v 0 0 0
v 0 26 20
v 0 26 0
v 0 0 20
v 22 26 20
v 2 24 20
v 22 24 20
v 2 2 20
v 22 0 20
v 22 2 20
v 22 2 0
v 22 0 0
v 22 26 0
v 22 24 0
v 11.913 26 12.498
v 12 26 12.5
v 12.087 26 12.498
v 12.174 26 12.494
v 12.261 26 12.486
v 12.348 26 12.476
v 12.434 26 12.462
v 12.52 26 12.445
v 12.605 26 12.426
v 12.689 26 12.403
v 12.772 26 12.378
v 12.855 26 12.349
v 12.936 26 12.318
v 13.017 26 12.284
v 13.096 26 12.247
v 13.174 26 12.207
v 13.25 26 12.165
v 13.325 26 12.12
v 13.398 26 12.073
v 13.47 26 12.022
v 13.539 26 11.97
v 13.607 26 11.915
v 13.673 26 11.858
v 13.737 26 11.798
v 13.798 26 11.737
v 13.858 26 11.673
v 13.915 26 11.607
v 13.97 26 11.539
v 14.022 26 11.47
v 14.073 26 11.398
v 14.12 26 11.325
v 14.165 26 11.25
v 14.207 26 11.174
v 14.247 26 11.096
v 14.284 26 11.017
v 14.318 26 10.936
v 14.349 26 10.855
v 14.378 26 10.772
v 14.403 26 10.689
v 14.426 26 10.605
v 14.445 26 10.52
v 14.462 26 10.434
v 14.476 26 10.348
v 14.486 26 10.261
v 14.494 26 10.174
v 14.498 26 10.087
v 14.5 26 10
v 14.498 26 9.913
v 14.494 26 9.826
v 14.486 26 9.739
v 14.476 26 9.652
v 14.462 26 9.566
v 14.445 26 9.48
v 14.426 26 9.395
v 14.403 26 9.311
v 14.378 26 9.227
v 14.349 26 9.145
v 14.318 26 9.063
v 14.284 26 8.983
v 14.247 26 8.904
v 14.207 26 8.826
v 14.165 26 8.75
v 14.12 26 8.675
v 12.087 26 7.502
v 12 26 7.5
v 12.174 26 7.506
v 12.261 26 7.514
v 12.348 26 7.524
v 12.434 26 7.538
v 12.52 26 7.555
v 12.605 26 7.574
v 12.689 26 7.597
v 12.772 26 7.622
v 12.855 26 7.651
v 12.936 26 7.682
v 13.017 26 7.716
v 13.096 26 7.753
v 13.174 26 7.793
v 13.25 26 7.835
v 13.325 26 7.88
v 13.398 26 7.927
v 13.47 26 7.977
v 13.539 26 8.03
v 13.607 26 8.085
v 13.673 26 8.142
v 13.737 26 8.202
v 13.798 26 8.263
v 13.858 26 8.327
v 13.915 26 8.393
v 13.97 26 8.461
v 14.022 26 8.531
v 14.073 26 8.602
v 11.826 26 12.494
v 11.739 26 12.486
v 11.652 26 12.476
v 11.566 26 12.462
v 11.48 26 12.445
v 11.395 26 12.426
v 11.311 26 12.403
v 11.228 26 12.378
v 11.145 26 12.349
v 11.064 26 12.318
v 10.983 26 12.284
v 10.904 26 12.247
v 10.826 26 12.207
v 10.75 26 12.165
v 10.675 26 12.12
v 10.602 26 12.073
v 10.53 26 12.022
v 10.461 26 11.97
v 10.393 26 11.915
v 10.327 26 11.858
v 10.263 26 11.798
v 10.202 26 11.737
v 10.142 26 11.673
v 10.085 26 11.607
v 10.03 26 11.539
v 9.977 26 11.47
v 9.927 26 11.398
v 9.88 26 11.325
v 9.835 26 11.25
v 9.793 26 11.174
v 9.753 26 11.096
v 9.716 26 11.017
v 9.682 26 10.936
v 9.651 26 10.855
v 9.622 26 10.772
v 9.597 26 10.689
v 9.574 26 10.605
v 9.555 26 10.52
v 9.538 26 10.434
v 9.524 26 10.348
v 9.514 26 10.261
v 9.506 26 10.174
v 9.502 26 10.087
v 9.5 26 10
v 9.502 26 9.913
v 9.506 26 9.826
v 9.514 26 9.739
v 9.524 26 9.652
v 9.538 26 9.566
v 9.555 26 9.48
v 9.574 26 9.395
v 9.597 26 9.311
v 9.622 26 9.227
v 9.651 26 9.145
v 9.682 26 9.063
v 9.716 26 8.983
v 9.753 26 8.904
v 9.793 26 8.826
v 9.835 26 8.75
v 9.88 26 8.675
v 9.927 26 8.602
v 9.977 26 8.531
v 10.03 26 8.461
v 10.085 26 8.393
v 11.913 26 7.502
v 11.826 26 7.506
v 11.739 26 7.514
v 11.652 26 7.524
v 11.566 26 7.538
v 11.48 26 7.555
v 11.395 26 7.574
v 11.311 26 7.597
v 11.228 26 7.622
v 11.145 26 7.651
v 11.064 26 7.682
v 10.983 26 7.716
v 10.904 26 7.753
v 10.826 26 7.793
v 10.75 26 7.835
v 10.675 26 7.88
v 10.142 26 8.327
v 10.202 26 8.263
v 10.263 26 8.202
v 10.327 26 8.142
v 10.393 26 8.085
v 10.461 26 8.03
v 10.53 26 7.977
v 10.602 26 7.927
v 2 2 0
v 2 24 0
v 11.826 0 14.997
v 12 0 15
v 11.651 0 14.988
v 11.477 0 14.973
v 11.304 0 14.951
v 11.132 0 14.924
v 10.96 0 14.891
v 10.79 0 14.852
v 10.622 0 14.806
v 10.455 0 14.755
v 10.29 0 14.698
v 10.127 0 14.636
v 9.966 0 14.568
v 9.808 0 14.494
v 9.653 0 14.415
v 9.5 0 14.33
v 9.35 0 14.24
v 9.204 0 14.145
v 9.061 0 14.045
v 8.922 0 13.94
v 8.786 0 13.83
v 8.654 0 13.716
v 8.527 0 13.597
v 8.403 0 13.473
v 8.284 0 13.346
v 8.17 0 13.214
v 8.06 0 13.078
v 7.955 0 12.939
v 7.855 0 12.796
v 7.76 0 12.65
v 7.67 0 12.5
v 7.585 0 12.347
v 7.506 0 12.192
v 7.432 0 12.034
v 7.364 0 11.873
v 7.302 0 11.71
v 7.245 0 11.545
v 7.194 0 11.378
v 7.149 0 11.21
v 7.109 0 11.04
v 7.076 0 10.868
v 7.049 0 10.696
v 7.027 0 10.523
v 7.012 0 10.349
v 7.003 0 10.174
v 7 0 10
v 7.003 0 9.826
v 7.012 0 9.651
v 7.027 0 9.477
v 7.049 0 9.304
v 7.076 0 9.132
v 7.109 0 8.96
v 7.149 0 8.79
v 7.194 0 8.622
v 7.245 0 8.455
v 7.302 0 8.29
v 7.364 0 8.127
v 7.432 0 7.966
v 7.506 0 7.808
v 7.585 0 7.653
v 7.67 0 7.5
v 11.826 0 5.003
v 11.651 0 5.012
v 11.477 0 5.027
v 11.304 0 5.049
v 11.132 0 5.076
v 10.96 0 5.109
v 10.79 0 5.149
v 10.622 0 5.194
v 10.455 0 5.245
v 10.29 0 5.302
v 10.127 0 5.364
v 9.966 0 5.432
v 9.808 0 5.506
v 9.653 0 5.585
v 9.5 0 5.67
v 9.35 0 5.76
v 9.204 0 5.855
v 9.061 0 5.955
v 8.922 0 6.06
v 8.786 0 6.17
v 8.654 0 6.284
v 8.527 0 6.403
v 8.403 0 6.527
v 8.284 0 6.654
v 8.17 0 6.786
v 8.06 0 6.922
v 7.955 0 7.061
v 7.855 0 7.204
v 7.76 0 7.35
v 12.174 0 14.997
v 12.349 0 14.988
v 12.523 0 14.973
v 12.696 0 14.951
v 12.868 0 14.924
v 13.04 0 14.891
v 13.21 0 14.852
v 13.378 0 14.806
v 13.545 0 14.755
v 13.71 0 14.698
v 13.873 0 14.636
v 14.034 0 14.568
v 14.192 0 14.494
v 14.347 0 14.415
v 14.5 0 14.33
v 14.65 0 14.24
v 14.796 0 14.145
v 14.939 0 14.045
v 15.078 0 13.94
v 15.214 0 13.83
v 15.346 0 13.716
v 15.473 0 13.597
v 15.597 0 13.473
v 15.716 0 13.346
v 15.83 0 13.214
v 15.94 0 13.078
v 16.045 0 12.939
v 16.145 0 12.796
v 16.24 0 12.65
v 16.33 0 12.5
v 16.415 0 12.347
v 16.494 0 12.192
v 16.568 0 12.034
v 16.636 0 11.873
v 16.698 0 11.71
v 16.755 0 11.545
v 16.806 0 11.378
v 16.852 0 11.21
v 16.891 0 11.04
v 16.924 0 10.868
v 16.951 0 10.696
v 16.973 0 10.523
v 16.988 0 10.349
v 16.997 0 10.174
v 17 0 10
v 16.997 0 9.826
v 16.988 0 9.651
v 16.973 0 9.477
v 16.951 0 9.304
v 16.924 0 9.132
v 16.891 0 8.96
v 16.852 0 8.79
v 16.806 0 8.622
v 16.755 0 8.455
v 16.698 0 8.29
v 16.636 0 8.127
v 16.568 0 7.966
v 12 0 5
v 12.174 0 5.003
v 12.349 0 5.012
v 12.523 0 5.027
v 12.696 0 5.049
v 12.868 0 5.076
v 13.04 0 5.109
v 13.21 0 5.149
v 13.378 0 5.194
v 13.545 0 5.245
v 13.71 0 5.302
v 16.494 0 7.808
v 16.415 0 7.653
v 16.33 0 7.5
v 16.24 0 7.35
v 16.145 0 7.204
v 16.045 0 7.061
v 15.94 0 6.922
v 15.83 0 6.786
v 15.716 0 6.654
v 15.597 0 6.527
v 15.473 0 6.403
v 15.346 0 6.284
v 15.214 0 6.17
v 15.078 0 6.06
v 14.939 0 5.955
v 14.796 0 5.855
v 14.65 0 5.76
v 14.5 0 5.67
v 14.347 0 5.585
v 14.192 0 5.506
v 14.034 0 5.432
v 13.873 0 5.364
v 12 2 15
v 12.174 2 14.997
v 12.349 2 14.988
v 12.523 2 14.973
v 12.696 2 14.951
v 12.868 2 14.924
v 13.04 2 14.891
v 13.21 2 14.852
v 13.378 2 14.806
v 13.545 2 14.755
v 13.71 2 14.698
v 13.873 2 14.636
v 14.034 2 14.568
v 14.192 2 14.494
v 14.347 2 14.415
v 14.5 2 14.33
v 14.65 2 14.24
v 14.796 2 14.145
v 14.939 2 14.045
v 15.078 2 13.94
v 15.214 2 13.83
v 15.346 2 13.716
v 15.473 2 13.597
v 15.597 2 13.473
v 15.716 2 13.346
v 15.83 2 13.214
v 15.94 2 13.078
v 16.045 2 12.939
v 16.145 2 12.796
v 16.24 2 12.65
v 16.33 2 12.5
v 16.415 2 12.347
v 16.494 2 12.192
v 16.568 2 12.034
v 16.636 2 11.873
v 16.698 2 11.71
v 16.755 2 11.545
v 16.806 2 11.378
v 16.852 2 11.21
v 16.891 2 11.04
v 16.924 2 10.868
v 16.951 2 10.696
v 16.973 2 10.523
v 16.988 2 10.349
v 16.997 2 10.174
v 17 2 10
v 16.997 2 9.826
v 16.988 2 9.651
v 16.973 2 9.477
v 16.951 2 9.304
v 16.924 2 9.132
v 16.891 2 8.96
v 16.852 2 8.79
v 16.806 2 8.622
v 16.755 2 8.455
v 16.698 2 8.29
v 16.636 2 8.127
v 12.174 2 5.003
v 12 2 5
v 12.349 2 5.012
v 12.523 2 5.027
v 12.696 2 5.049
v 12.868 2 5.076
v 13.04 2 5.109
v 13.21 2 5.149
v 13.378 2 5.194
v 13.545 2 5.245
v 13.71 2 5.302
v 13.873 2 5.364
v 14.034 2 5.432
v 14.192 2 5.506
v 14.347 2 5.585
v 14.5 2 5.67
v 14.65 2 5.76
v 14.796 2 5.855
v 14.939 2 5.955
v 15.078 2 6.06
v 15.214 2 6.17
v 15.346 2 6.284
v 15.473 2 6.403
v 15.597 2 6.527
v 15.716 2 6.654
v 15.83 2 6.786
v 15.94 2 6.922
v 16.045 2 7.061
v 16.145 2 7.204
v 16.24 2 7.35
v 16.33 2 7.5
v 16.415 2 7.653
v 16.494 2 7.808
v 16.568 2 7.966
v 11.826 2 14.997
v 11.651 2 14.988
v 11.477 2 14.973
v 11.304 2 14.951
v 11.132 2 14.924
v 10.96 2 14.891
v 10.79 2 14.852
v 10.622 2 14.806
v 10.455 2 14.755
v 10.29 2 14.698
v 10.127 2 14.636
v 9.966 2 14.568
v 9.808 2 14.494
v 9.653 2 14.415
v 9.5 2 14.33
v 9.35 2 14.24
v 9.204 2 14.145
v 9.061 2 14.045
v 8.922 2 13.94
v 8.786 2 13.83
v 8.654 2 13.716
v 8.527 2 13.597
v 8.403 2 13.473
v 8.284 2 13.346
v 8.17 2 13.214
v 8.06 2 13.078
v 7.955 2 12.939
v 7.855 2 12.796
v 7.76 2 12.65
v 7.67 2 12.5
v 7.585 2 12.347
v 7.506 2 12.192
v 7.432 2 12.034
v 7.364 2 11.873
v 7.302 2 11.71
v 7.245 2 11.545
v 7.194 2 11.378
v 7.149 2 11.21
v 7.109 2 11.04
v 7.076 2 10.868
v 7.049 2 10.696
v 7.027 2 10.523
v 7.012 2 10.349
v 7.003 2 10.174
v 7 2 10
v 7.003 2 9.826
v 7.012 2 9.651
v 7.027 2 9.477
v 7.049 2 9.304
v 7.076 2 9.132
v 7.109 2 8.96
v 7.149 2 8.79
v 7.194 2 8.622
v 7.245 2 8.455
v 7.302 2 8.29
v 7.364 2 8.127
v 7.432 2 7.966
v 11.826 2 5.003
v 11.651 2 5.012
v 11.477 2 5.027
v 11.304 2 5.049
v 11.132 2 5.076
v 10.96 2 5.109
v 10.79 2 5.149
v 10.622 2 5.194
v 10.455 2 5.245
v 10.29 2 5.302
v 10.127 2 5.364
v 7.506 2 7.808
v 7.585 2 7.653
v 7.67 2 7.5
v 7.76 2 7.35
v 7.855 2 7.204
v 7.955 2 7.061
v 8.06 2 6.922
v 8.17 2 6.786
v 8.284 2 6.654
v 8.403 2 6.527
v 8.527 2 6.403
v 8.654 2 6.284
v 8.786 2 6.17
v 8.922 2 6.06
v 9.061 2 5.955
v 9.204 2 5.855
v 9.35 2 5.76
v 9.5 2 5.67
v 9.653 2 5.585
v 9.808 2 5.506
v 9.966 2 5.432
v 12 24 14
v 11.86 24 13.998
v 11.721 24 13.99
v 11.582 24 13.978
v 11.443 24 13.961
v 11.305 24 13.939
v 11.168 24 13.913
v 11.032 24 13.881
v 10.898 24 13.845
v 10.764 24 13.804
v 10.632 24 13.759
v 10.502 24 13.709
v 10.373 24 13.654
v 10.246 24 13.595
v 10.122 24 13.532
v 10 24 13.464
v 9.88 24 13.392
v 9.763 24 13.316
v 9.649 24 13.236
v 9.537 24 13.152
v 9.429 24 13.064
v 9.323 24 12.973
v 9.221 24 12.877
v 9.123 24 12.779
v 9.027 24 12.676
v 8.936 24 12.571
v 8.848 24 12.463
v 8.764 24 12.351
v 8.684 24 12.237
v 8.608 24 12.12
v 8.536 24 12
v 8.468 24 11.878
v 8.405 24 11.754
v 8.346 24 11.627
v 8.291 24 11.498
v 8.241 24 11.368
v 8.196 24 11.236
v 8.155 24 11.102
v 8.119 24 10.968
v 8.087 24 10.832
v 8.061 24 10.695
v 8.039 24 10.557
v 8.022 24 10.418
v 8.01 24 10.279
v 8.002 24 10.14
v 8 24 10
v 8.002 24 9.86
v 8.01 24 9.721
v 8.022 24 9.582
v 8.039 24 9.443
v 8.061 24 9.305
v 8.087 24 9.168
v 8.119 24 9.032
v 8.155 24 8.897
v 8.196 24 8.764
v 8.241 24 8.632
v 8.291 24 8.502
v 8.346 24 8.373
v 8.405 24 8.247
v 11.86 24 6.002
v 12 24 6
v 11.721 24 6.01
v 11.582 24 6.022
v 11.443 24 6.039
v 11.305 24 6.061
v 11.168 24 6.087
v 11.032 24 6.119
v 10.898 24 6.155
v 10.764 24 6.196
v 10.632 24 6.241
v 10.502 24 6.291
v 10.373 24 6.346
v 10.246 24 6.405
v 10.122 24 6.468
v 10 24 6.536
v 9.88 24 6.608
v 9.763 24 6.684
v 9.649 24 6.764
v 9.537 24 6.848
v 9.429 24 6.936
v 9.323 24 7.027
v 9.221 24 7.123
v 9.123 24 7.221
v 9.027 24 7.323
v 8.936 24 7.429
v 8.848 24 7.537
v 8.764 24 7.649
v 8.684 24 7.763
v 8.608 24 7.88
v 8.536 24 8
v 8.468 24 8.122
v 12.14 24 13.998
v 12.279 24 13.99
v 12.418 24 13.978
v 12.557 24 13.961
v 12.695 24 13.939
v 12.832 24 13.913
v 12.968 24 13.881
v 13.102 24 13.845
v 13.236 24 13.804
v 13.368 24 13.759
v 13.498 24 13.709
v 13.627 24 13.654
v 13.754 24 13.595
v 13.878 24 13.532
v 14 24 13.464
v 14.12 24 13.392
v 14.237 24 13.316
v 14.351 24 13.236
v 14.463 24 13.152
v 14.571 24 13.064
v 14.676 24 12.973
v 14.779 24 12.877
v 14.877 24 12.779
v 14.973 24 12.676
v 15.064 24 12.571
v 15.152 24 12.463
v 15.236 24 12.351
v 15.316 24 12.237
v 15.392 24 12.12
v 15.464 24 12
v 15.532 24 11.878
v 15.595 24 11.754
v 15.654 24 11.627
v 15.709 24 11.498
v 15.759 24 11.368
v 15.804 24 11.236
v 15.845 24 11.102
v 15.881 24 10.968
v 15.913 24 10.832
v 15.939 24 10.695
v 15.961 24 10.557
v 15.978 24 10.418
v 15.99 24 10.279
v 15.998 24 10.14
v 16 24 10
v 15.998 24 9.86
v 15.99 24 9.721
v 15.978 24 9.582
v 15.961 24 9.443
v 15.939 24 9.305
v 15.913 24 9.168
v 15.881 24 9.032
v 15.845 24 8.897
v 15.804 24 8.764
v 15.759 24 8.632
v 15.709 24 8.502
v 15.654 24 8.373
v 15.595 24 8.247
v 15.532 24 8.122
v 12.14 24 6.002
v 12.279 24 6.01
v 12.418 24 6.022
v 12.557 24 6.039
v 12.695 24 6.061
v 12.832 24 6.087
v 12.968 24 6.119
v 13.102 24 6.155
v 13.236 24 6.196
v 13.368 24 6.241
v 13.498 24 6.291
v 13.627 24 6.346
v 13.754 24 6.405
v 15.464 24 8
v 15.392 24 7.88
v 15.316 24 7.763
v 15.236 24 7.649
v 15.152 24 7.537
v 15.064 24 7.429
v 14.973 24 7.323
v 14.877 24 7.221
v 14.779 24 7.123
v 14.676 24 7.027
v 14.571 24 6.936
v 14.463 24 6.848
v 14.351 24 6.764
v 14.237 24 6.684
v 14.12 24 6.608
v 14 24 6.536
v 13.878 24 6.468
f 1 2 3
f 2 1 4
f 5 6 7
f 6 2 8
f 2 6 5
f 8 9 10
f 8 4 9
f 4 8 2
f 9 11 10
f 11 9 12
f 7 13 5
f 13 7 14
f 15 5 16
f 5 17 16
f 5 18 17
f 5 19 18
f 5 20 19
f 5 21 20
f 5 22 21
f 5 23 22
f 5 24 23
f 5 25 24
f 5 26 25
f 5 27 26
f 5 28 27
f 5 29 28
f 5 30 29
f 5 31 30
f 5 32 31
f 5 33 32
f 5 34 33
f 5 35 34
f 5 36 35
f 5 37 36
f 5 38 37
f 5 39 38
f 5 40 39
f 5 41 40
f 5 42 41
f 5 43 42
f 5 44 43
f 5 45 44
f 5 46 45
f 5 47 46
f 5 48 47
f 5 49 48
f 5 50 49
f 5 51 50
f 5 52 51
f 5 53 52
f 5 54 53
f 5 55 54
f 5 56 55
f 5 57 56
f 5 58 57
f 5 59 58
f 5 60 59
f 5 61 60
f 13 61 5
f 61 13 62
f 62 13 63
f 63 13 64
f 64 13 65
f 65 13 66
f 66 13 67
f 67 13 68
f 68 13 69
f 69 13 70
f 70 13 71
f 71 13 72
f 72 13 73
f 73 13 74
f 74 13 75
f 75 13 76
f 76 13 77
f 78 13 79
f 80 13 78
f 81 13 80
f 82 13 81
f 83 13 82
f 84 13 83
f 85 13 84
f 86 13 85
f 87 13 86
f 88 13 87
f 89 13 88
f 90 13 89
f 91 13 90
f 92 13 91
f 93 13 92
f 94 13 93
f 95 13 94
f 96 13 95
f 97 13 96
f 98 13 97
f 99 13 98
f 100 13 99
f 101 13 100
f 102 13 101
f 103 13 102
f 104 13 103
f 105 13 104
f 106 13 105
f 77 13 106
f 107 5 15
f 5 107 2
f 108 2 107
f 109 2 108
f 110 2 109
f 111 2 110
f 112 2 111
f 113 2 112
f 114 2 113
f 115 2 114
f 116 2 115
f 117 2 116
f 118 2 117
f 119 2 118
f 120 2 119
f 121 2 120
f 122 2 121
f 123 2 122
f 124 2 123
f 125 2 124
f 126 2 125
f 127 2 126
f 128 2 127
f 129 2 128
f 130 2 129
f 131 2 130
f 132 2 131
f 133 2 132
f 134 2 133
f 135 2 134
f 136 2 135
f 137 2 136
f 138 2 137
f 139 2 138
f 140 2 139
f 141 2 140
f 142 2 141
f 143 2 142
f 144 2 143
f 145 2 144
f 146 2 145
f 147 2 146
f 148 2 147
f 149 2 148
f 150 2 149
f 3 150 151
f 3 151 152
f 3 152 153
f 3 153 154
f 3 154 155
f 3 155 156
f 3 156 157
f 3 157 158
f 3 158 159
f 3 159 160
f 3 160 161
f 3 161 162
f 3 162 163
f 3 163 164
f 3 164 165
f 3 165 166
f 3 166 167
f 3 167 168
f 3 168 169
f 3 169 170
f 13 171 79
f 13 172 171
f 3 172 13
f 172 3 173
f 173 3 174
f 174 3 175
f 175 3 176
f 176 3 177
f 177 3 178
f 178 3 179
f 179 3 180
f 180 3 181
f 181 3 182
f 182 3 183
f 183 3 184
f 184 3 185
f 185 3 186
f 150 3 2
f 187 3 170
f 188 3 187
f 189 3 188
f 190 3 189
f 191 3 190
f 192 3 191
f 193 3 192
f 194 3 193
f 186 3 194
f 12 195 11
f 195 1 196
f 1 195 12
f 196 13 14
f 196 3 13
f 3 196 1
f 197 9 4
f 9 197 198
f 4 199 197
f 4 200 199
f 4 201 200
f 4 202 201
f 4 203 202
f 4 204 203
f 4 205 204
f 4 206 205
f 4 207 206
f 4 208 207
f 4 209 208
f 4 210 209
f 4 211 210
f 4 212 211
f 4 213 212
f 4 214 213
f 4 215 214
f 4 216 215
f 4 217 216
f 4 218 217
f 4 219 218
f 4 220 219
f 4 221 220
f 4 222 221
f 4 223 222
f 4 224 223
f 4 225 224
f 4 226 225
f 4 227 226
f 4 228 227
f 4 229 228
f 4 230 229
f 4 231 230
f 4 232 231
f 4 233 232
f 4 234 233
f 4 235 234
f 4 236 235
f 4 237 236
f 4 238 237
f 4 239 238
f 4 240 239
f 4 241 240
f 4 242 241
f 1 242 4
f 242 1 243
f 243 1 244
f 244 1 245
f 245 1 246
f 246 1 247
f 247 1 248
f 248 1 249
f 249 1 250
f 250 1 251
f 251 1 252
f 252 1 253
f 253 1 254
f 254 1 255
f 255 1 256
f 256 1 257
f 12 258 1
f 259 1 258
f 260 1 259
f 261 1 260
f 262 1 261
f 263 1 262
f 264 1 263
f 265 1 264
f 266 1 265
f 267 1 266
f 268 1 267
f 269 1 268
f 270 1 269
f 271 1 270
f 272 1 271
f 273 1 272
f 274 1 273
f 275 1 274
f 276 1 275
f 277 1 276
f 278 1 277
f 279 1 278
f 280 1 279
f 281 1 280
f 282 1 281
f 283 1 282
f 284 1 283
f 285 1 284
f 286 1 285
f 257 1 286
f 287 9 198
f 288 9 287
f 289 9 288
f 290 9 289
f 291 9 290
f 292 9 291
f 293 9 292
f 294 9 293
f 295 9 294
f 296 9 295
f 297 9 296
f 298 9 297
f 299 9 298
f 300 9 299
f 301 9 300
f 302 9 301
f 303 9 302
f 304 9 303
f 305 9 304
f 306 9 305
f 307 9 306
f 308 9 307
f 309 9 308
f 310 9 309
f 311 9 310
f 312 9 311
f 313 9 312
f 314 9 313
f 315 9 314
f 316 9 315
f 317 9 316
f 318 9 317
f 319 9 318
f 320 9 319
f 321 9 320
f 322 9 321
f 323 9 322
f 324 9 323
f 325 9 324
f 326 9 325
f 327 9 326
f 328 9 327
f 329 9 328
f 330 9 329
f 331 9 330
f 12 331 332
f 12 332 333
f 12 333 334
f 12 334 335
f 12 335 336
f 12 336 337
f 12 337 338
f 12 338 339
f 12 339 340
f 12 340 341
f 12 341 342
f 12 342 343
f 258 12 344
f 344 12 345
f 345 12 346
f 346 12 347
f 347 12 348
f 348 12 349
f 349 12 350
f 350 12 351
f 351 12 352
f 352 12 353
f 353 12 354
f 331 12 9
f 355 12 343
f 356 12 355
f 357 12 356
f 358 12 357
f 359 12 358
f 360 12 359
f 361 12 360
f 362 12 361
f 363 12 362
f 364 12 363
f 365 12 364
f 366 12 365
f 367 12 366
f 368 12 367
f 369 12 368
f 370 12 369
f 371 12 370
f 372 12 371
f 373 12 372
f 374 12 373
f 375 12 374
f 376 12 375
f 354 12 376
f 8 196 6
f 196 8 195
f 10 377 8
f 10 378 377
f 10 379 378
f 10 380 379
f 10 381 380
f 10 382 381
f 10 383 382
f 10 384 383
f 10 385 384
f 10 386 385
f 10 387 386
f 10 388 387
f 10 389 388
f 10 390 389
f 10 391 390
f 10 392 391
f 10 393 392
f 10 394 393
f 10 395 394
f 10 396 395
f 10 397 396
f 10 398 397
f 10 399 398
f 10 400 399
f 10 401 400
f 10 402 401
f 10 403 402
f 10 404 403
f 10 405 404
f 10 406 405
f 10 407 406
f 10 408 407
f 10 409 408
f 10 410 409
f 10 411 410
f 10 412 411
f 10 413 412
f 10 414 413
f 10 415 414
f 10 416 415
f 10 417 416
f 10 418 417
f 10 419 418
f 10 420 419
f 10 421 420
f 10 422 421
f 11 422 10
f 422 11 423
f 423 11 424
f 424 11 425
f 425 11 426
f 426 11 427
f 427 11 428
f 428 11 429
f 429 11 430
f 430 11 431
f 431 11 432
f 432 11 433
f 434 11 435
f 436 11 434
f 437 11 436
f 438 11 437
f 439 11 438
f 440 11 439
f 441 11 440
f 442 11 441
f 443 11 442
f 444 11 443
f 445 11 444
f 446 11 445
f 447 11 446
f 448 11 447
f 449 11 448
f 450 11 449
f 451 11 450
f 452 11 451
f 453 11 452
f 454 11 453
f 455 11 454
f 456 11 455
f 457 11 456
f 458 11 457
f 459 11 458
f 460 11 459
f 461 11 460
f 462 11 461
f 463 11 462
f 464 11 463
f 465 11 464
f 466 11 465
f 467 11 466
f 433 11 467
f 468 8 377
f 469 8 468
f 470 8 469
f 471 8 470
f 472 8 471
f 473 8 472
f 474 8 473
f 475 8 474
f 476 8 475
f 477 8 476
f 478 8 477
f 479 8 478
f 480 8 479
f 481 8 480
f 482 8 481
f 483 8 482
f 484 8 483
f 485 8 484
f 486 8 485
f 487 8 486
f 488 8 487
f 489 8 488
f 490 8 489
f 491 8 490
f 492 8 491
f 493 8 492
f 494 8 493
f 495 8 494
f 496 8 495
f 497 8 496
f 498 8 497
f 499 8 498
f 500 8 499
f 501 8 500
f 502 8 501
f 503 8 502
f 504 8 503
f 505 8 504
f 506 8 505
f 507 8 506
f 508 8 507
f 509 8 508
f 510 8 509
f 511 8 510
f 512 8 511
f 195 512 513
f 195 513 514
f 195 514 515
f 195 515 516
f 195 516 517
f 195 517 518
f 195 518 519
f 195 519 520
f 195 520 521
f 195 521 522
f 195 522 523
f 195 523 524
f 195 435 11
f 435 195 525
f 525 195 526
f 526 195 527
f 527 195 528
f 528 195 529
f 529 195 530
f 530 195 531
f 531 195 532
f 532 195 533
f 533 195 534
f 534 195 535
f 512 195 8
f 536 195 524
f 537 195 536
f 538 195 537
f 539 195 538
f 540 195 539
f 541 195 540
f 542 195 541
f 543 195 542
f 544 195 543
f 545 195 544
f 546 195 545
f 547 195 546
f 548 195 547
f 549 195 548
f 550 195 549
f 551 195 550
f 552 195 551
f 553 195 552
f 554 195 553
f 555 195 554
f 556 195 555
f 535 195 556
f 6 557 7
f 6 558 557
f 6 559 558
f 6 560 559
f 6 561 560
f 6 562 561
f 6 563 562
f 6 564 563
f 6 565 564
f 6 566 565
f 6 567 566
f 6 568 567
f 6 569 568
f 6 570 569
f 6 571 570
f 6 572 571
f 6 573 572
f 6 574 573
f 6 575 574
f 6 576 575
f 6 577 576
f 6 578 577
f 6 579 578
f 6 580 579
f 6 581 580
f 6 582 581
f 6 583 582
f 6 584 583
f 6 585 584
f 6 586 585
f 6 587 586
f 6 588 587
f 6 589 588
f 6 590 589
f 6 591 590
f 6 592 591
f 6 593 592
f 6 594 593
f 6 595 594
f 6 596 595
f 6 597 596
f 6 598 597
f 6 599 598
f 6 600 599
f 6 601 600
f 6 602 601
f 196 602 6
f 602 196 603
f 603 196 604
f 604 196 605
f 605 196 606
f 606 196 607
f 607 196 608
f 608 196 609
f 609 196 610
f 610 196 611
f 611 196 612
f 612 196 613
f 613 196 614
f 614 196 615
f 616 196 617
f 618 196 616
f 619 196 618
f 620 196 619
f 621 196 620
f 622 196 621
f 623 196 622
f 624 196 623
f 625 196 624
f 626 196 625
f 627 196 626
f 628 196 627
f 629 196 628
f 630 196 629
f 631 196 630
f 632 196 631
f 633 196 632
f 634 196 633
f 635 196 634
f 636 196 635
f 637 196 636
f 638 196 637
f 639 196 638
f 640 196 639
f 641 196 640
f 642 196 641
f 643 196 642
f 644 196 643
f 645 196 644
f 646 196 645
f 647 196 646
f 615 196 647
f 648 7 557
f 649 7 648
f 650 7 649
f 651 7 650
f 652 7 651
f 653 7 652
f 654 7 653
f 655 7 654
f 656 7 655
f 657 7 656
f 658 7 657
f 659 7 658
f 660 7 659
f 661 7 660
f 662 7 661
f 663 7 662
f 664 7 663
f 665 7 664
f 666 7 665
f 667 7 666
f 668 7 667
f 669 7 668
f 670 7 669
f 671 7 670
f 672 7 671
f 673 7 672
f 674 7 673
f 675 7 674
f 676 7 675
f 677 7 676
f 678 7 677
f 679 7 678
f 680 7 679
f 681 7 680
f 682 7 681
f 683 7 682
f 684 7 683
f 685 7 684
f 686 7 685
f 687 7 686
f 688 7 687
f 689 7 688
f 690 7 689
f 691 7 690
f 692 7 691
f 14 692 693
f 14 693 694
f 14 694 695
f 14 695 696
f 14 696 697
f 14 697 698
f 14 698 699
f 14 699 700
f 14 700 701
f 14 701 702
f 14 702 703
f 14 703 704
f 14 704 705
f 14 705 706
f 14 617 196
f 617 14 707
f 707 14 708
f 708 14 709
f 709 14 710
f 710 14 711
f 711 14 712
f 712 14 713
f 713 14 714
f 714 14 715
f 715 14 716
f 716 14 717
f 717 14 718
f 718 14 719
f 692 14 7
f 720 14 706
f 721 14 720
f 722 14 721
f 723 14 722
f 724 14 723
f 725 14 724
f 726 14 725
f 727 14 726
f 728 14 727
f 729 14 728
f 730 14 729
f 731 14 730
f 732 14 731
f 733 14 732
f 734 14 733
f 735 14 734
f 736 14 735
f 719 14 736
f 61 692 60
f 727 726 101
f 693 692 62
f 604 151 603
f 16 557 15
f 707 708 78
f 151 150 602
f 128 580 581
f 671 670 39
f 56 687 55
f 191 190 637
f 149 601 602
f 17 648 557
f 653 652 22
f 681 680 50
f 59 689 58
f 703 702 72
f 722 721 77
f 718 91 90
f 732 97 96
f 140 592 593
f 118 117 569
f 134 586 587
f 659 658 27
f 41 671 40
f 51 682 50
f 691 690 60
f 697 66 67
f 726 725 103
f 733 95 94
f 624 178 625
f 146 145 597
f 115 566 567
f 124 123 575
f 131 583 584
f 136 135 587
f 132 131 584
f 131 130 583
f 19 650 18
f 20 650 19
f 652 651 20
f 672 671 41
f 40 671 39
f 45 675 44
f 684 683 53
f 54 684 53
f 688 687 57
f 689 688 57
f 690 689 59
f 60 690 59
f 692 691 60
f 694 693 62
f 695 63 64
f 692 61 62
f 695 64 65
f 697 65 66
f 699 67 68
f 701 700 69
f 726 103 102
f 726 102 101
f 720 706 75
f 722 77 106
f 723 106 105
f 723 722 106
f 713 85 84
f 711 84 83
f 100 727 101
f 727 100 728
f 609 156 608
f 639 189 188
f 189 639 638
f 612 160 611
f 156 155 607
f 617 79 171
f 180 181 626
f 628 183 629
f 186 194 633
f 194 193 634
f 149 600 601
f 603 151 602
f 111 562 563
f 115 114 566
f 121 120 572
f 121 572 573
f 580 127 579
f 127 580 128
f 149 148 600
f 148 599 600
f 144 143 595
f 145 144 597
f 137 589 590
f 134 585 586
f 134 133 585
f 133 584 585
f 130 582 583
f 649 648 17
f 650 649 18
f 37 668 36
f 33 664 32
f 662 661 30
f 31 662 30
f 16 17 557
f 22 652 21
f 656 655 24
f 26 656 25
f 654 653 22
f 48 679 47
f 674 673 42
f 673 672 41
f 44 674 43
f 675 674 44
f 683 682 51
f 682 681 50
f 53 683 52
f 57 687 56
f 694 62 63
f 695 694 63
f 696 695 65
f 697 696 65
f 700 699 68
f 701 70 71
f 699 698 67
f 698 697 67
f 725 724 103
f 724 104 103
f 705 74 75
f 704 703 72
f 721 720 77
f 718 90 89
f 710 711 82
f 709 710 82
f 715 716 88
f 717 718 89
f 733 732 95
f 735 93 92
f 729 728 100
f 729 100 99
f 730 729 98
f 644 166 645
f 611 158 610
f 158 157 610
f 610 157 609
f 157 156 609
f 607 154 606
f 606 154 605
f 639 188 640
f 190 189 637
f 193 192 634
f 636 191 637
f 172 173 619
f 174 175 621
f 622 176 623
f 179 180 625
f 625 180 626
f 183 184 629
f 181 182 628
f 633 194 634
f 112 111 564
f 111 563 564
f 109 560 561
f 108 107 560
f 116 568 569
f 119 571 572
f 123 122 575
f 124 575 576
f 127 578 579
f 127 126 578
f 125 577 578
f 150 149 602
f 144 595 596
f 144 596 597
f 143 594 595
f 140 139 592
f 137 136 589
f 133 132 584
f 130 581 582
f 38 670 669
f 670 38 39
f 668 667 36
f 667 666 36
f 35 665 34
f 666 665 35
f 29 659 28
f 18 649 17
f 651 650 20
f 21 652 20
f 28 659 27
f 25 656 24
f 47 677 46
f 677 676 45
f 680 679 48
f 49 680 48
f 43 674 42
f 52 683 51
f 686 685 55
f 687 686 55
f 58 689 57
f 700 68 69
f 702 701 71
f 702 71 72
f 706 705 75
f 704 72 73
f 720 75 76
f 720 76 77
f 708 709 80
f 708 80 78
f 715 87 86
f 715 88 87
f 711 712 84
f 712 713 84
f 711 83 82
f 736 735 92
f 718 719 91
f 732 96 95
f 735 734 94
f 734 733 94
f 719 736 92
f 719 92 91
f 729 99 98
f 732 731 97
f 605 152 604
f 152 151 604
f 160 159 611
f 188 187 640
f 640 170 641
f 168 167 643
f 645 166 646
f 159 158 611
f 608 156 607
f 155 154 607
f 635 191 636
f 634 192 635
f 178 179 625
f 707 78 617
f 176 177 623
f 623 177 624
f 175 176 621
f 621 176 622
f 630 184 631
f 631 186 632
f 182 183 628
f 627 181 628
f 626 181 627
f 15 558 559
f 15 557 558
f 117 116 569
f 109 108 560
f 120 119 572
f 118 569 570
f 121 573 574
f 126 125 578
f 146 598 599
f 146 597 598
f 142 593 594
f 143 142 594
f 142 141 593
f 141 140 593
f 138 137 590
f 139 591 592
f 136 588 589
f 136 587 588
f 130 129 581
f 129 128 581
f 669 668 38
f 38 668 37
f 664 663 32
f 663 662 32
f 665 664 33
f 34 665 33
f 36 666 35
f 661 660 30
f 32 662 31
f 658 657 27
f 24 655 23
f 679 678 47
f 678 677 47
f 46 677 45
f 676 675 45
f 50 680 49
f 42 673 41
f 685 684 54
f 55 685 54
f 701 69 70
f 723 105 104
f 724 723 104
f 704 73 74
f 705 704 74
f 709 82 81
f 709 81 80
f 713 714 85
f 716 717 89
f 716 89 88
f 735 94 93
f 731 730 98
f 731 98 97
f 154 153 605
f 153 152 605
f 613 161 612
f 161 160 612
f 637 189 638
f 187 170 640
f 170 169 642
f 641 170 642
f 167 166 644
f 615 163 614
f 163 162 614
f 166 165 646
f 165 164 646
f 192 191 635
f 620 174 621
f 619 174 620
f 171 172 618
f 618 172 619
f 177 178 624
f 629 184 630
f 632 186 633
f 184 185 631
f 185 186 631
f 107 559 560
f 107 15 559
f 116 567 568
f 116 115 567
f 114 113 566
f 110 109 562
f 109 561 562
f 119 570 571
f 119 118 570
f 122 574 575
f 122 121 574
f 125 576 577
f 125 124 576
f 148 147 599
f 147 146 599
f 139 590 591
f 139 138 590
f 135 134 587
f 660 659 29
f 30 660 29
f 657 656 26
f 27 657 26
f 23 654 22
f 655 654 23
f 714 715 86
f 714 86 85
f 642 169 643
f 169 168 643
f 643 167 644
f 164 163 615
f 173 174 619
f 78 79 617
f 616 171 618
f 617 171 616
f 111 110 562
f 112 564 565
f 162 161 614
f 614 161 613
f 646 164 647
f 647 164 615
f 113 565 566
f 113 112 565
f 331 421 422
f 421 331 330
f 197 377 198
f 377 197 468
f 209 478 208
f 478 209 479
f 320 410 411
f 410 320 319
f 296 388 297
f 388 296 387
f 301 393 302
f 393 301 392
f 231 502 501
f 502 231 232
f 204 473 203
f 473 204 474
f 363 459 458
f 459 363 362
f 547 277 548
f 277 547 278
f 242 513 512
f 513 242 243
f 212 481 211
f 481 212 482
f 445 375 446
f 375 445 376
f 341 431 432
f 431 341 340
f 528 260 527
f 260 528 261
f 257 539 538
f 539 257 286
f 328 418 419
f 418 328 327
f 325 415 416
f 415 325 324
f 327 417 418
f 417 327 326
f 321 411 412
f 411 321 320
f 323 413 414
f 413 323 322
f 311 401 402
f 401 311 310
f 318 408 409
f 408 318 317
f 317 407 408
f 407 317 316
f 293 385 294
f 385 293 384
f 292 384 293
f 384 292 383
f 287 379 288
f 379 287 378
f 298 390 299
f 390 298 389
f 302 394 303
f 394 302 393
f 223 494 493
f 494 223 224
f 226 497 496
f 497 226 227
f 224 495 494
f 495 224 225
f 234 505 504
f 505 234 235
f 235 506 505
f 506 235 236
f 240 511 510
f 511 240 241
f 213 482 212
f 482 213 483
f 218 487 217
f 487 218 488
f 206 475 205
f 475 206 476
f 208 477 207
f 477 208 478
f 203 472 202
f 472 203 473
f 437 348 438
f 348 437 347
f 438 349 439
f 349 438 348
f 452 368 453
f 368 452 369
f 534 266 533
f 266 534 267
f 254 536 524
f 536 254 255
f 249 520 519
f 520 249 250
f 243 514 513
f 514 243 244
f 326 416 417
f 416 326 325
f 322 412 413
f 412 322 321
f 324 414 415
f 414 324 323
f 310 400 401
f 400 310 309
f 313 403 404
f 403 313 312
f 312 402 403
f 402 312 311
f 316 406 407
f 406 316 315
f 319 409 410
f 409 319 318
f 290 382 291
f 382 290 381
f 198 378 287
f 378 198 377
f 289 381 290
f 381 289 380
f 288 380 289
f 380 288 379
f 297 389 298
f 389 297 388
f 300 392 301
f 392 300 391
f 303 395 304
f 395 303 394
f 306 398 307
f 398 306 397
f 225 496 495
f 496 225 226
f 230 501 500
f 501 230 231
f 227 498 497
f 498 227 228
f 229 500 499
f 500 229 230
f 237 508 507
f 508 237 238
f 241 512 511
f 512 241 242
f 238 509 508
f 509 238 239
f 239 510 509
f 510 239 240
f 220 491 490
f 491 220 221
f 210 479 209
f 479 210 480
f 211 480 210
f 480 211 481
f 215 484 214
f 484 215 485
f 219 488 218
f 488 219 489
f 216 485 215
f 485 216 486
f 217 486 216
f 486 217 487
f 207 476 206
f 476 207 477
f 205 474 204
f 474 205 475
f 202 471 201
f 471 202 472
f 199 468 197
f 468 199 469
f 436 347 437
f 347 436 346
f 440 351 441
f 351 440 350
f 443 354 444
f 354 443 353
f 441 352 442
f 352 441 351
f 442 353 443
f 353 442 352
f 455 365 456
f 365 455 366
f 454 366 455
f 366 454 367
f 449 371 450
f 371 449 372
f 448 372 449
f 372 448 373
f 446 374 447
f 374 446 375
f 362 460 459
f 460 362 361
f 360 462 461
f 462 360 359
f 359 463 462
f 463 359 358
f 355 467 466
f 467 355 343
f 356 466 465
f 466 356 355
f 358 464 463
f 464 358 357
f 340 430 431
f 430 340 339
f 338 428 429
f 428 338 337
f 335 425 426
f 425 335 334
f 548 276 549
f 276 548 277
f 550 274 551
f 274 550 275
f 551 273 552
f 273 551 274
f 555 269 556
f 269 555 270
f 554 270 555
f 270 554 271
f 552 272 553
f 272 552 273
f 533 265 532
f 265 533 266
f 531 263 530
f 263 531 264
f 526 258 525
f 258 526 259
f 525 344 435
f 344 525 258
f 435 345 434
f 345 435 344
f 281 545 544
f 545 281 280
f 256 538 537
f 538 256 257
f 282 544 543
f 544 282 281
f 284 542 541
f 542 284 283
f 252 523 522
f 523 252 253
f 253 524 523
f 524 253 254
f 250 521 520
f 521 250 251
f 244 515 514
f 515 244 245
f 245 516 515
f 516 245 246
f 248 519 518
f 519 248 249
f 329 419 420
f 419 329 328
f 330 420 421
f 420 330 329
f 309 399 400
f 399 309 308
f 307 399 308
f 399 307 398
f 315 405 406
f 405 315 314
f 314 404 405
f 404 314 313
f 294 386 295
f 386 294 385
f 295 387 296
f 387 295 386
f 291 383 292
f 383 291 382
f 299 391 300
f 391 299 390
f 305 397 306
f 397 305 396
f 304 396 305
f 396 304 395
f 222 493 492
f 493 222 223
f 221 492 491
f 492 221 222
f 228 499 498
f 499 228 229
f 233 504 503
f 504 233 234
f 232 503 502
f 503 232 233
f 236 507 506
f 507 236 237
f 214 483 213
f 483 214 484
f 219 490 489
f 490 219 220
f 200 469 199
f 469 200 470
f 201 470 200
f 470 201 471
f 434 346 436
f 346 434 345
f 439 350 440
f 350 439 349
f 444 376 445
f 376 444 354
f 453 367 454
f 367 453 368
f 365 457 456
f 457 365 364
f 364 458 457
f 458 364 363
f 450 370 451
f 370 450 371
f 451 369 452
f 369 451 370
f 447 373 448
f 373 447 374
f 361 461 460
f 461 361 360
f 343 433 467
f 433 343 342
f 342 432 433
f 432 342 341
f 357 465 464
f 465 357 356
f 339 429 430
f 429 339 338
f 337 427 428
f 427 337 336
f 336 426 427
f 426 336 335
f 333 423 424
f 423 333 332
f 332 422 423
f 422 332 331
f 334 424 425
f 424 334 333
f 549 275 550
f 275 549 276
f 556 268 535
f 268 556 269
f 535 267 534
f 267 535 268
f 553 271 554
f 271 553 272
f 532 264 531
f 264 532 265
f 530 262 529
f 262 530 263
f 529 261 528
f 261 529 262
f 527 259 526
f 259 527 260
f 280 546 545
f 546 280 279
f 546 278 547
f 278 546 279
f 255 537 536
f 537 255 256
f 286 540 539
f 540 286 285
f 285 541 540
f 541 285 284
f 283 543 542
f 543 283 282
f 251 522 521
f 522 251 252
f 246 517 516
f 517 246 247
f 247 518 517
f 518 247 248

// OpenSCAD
laptop_thickness = 22;

height = 20;
length = 20;

thickness = 2;

screw_top = 9;
screw_bottom = 6;

screw_driver_diameter = 10;

with_bottom = false;
bottom = 0;
if (with_bottom) {
    bottom = thickness;
}


$fn = 180;

difference() {
    cube([length + thickness, laptop_thickness + 2 * thickness, height + bottom]);
    translate([thickness, thickness, bottom]) cube([length, laptop_thickness, height]);
    translate([thickness + length / 2, laptop_thickness + 2 * thickness, bottom + height / 2]) rotate([90, 0, 0]) cylinder(d1=5, d2=8, thickness);
    translate([thickness + length / 2, thickness, bottom + height / 2]) rotate([90, 0, 0]) cylinder(d=screw_driver_diameter, thickness);
}
